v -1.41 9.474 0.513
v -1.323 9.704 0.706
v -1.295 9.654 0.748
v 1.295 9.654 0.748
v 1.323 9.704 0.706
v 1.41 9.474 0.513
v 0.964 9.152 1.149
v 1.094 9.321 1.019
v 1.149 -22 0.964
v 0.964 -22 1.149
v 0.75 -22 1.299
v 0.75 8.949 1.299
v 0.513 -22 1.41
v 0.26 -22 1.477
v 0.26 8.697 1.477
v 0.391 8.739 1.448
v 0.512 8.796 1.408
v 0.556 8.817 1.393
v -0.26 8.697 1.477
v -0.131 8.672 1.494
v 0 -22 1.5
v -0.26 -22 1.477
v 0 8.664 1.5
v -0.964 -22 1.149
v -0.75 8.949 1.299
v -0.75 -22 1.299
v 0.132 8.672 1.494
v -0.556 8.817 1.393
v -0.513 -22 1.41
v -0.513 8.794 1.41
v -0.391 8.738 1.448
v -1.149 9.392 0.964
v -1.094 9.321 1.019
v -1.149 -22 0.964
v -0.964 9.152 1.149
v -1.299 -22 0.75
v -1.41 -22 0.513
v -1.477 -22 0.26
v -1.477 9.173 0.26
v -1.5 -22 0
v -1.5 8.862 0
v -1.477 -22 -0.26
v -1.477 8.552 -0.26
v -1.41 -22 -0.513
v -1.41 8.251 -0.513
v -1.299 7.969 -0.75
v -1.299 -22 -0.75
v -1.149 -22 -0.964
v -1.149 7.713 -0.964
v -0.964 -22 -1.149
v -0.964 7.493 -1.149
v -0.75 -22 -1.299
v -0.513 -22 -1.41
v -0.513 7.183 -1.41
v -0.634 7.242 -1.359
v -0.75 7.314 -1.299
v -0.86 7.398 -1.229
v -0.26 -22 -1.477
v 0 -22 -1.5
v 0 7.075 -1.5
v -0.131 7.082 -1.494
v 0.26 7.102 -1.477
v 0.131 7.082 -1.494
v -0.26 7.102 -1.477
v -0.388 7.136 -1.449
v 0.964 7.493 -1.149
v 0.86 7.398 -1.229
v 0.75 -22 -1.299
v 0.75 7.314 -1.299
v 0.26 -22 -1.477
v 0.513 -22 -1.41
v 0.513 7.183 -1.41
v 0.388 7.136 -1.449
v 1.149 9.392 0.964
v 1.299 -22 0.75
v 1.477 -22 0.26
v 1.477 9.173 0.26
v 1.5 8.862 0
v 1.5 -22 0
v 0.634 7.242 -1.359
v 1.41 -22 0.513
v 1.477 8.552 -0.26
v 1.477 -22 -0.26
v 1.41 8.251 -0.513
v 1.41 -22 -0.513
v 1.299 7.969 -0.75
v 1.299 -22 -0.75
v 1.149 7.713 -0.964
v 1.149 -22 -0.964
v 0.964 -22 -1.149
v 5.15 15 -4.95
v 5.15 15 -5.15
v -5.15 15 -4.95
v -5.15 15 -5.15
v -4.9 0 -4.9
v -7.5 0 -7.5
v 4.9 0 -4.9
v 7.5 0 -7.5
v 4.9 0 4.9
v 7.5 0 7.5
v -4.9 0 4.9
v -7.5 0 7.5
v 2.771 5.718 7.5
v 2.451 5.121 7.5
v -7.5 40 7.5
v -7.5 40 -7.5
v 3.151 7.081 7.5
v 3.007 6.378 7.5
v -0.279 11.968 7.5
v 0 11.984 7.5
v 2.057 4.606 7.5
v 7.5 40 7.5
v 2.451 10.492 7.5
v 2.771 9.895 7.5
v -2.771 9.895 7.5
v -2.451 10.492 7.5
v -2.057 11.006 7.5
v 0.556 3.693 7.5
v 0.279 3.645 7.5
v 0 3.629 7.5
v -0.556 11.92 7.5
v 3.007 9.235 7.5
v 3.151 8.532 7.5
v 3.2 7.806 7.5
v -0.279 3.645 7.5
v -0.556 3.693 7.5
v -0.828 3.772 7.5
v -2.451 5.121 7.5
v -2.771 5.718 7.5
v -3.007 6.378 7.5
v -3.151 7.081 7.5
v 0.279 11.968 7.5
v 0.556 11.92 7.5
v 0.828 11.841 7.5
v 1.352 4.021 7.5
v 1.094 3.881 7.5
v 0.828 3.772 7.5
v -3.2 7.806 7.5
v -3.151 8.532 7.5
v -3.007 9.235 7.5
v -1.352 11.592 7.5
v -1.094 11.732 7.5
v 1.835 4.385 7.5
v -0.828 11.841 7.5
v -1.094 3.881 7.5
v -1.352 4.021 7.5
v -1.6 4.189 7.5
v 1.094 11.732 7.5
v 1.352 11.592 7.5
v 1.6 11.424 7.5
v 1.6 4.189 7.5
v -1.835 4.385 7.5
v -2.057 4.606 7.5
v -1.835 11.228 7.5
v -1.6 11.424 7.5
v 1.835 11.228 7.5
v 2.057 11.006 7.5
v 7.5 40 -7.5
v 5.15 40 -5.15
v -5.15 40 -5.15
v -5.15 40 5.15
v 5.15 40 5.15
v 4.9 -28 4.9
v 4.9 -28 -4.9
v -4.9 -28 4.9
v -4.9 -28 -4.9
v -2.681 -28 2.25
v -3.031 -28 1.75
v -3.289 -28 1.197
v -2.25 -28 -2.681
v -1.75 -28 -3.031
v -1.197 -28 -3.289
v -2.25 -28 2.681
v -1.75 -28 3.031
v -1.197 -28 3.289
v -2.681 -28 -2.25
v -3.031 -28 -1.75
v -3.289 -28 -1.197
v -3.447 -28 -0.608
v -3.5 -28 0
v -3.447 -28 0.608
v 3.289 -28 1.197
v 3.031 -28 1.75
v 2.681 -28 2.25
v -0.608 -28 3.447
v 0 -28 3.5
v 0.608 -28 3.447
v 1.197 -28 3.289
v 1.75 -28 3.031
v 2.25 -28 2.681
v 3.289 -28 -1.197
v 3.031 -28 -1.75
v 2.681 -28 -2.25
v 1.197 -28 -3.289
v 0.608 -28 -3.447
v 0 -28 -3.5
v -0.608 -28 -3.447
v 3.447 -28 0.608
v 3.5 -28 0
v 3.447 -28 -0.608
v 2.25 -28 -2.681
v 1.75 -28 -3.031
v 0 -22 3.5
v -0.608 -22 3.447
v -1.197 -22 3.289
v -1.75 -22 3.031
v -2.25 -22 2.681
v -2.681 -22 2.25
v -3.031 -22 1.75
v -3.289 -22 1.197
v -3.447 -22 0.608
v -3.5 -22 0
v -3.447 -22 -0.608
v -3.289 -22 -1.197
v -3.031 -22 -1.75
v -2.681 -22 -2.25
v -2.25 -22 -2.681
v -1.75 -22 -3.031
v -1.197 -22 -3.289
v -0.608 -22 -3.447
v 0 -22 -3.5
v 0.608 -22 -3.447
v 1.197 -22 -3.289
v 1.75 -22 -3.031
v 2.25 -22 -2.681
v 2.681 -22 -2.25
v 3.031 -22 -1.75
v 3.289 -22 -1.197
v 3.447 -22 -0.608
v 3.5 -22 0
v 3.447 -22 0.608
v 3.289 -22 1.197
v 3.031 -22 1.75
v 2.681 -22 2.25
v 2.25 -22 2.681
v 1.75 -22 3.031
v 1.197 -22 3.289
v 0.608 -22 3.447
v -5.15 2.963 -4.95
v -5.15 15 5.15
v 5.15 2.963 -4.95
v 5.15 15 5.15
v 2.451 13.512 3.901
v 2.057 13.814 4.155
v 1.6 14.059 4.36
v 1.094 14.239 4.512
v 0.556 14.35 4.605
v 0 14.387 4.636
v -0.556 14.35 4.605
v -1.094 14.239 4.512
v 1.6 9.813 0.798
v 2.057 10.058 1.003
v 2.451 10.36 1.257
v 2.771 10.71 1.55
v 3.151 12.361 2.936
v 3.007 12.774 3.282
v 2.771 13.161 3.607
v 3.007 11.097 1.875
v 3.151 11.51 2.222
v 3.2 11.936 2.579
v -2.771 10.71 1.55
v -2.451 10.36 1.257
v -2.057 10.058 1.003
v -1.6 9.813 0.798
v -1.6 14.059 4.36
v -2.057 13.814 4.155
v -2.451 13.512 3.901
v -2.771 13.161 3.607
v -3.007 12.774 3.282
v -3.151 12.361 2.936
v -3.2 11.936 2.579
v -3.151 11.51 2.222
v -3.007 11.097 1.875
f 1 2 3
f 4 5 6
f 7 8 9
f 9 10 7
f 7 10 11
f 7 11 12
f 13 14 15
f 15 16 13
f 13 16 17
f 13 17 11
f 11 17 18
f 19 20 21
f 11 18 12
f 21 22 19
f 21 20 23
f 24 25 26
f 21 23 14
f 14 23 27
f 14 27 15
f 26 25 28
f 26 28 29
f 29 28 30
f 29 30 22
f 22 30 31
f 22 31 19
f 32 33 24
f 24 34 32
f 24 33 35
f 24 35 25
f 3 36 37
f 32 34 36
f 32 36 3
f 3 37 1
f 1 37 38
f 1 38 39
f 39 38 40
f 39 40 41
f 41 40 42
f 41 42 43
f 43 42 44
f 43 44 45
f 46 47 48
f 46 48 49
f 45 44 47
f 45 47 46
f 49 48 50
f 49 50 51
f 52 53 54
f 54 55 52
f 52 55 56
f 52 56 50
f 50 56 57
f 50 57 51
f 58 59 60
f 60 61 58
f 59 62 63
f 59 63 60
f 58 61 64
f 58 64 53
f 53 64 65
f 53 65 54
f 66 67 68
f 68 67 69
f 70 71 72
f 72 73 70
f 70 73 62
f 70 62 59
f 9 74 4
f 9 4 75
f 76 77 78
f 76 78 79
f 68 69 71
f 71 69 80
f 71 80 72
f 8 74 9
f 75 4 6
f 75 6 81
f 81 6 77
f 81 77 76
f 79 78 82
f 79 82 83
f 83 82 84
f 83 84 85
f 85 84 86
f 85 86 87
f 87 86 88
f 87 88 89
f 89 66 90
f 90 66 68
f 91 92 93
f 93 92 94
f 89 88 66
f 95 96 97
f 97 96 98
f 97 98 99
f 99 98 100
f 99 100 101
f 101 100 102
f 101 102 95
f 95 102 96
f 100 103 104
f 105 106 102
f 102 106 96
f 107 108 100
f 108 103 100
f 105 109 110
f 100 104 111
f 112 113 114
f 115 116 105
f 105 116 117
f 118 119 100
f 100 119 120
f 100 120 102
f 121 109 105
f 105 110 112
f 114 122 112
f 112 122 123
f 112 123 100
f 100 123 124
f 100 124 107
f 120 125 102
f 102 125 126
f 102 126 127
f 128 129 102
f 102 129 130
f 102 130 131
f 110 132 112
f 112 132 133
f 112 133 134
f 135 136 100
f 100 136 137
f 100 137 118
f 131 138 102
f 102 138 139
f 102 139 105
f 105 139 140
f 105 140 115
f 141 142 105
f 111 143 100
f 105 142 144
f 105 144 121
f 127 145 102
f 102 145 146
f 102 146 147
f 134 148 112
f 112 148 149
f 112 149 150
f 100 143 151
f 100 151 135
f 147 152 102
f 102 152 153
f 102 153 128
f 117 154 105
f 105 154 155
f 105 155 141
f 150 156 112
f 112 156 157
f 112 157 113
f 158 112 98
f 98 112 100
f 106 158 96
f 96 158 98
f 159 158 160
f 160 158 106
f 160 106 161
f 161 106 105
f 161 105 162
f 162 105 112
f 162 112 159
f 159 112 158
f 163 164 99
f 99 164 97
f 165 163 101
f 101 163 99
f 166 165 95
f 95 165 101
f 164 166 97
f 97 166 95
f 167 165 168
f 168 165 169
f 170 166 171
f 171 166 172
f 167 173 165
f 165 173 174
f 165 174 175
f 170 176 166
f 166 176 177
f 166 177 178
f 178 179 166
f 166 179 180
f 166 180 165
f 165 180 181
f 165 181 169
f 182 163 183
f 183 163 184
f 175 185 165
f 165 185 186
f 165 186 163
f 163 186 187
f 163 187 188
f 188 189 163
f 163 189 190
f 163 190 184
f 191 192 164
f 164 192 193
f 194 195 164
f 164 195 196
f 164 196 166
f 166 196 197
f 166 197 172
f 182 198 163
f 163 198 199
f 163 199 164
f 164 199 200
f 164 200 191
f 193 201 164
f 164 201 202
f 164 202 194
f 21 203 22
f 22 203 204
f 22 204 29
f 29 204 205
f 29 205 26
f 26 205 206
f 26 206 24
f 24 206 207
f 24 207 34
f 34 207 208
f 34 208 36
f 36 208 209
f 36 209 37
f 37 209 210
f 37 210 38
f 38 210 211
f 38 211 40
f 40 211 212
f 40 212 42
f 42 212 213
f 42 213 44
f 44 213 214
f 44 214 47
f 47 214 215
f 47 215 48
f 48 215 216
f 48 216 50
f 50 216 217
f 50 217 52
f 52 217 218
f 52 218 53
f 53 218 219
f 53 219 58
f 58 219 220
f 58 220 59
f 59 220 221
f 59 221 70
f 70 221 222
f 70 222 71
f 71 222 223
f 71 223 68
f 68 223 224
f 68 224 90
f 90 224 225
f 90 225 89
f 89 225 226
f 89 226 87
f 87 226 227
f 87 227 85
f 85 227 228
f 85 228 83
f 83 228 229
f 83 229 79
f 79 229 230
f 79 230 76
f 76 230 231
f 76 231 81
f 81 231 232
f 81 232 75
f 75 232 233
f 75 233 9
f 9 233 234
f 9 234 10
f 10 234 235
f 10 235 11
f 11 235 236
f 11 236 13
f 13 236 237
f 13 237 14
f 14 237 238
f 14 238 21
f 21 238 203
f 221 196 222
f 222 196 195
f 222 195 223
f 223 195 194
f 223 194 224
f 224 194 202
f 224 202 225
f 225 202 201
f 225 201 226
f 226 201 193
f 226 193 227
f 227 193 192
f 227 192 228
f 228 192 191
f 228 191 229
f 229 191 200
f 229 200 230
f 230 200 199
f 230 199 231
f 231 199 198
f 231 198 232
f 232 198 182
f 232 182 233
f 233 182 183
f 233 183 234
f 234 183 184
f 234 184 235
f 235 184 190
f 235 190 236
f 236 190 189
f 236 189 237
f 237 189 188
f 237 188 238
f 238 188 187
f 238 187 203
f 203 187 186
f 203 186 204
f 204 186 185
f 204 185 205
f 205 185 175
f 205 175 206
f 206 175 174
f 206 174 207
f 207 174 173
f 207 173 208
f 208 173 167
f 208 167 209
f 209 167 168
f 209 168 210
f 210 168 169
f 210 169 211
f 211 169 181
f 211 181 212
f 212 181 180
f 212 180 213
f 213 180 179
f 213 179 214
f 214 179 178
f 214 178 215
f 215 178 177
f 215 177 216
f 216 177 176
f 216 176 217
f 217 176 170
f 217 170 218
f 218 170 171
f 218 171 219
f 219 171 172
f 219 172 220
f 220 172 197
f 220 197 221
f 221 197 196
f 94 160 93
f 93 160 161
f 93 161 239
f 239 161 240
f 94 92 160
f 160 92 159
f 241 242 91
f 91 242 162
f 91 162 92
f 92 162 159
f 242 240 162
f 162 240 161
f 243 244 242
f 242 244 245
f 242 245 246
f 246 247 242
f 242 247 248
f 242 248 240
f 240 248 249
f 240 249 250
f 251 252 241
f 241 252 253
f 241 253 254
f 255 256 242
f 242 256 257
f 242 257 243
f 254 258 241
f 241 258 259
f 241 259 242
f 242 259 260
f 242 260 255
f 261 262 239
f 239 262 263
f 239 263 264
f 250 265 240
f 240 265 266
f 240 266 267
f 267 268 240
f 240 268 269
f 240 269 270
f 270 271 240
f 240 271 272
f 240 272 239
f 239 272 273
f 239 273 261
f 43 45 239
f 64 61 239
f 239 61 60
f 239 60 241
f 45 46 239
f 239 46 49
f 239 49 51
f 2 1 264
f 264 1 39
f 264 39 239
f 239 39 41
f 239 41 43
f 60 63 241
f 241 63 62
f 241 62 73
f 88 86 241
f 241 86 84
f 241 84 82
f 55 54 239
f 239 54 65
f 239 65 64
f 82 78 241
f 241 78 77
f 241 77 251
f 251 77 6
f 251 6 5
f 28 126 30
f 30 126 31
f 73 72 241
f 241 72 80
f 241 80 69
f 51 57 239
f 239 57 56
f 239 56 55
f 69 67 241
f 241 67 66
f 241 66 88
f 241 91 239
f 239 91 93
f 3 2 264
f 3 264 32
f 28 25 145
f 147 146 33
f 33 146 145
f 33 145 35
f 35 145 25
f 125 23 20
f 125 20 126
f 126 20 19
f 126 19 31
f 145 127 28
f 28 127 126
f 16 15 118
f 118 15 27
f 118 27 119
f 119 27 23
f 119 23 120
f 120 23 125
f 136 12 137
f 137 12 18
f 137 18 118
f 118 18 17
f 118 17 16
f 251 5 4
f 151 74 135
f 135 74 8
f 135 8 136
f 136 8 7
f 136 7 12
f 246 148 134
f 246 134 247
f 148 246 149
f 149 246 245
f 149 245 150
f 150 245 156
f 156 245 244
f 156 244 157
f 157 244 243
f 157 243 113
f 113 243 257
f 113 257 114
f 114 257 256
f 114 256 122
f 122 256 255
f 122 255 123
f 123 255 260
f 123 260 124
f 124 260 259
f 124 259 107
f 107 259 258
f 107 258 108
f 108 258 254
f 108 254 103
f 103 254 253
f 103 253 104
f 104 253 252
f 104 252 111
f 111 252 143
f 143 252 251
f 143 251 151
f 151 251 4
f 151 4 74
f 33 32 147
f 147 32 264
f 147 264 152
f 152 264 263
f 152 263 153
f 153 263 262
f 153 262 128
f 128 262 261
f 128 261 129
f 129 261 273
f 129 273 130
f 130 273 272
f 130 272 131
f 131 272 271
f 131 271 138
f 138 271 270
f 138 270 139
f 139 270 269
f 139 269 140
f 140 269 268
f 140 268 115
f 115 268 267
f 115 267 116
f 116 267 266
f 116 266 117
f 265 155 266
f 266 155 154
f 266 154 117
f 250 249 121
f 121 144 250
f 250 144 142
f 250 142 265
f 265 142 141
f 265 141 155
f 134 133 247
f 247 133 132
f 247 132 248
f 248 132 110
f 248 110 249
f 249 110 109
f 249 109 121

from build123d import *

# Parameters (mm, degrees)
SKETCH1_W           = 15
SKETCH1_H           = 15
BOSS_EXTRUDE1_DEPTH = 40
SKETCH2_W           = 9.8
SKETCH2_H           = 9.8
BOSS_EXTRUDE2_DEPTH = 28
SKETCH3_R           = 1.5
CUT_EXTRUDE1_DEPTH  = 69.822234779
SKETCH4_R           = 3.5
CUT_EXTRUDE2_DEPTH  = 6
SKETCH5_W           = 10.3
SKETCH5_H           = 10.3
CUT_EXTRUDE3_DEPTH  = 25
CUT_EXTRUDE8_DEPTH  = 10.3
SKETCH8_R           = 3.2
CUT_EXTRUDE10_DEPTH = 39.954720357


with BuildPart() as part:
    # Sketch1 → Boss-Extrude1 (new body)
    with BuildSketch(Plane(origin=(0, 0, 0), x_dir=(1, 0, 0), z_dir=(0, 1, 0))):
        Rectangle(SKETCH1_W, SKETCH1_H)
    extrude(amount=BOSS_EXTRUDE1_DEPTH)

    # Sketch2 → Boss-Extrude2 (add)
    with BuildSketch(Plane.XZ):
        Rectangle(SKETCH2_W, SKETCH2_H)
    extrude(amount=BOSS_EXTRUDE2_DEPTH)

    # Sketch3 → Cut-Extrude1 (cut, through all)
    with BuildSketch(Plane.XZ.offset(28)):
        with Locations(Location((0, 0, 0), (0, 0, 270))):
            Circle(SKETCH3_R)
    extrude(amount=-CUT_EXTRUDE1_DEPTH, mode=Mode.SUBTRACT)

    # Sketch4 → Cut-Extrude2 (cut)
    with BuildSketch(Plane.XZ.offset(28)):
        with Locations(Location((0, 0, 0), (0, 0, 270))):
            Circle(SKETCH4_R)
    extrude(amount=-CUT_EXTRUDE2_DEPTH, mode=Mode.SUBTRACT)

    # Sketch5 → Cut-Extrude3 (cut)
    with BuildSketch(Plane(origin=(0, 40, 0), x_dir=(1, 0, 0), z_dir=(0, 1, 0))):
        Rectangle(SKETCH5_W, SKETCH5_H)
    extrude(amount=-CUT_EXTRUDE3_DEPTH, mode=Mode.SUBTRACT)

    # Sketch6 → Cut-Extrude8 (cut)
    with BuildSketch(Plane.ZY.offset(-5.15)):
        Polygon((5.15, 15), (-4.95, 2.963288715), (-4.95, 15), align=None)
    extrude(amount=CUT_EXTRUDE8_DEPTH, mode=Mode.SUBTRACT)

    # Sketch8 → Cut-Extrude10 (cut, through all)
    with BuildSketch(Plane(origin=(0, 3.661758703, -4.36391409), x_dir=(-1, 0, 0), z_dir=(0, 0.6427876096865436, -0.7660444431189745))):
        with Locations(Location((0, 10.801022837, 0), (0, 0, 90))):
            Circle(SKETCH8_R)
    extrude(amount=-CUT_EXTRUDE10_DEPTH, mode=Mode.SUBTRACT)


solid = part.part
